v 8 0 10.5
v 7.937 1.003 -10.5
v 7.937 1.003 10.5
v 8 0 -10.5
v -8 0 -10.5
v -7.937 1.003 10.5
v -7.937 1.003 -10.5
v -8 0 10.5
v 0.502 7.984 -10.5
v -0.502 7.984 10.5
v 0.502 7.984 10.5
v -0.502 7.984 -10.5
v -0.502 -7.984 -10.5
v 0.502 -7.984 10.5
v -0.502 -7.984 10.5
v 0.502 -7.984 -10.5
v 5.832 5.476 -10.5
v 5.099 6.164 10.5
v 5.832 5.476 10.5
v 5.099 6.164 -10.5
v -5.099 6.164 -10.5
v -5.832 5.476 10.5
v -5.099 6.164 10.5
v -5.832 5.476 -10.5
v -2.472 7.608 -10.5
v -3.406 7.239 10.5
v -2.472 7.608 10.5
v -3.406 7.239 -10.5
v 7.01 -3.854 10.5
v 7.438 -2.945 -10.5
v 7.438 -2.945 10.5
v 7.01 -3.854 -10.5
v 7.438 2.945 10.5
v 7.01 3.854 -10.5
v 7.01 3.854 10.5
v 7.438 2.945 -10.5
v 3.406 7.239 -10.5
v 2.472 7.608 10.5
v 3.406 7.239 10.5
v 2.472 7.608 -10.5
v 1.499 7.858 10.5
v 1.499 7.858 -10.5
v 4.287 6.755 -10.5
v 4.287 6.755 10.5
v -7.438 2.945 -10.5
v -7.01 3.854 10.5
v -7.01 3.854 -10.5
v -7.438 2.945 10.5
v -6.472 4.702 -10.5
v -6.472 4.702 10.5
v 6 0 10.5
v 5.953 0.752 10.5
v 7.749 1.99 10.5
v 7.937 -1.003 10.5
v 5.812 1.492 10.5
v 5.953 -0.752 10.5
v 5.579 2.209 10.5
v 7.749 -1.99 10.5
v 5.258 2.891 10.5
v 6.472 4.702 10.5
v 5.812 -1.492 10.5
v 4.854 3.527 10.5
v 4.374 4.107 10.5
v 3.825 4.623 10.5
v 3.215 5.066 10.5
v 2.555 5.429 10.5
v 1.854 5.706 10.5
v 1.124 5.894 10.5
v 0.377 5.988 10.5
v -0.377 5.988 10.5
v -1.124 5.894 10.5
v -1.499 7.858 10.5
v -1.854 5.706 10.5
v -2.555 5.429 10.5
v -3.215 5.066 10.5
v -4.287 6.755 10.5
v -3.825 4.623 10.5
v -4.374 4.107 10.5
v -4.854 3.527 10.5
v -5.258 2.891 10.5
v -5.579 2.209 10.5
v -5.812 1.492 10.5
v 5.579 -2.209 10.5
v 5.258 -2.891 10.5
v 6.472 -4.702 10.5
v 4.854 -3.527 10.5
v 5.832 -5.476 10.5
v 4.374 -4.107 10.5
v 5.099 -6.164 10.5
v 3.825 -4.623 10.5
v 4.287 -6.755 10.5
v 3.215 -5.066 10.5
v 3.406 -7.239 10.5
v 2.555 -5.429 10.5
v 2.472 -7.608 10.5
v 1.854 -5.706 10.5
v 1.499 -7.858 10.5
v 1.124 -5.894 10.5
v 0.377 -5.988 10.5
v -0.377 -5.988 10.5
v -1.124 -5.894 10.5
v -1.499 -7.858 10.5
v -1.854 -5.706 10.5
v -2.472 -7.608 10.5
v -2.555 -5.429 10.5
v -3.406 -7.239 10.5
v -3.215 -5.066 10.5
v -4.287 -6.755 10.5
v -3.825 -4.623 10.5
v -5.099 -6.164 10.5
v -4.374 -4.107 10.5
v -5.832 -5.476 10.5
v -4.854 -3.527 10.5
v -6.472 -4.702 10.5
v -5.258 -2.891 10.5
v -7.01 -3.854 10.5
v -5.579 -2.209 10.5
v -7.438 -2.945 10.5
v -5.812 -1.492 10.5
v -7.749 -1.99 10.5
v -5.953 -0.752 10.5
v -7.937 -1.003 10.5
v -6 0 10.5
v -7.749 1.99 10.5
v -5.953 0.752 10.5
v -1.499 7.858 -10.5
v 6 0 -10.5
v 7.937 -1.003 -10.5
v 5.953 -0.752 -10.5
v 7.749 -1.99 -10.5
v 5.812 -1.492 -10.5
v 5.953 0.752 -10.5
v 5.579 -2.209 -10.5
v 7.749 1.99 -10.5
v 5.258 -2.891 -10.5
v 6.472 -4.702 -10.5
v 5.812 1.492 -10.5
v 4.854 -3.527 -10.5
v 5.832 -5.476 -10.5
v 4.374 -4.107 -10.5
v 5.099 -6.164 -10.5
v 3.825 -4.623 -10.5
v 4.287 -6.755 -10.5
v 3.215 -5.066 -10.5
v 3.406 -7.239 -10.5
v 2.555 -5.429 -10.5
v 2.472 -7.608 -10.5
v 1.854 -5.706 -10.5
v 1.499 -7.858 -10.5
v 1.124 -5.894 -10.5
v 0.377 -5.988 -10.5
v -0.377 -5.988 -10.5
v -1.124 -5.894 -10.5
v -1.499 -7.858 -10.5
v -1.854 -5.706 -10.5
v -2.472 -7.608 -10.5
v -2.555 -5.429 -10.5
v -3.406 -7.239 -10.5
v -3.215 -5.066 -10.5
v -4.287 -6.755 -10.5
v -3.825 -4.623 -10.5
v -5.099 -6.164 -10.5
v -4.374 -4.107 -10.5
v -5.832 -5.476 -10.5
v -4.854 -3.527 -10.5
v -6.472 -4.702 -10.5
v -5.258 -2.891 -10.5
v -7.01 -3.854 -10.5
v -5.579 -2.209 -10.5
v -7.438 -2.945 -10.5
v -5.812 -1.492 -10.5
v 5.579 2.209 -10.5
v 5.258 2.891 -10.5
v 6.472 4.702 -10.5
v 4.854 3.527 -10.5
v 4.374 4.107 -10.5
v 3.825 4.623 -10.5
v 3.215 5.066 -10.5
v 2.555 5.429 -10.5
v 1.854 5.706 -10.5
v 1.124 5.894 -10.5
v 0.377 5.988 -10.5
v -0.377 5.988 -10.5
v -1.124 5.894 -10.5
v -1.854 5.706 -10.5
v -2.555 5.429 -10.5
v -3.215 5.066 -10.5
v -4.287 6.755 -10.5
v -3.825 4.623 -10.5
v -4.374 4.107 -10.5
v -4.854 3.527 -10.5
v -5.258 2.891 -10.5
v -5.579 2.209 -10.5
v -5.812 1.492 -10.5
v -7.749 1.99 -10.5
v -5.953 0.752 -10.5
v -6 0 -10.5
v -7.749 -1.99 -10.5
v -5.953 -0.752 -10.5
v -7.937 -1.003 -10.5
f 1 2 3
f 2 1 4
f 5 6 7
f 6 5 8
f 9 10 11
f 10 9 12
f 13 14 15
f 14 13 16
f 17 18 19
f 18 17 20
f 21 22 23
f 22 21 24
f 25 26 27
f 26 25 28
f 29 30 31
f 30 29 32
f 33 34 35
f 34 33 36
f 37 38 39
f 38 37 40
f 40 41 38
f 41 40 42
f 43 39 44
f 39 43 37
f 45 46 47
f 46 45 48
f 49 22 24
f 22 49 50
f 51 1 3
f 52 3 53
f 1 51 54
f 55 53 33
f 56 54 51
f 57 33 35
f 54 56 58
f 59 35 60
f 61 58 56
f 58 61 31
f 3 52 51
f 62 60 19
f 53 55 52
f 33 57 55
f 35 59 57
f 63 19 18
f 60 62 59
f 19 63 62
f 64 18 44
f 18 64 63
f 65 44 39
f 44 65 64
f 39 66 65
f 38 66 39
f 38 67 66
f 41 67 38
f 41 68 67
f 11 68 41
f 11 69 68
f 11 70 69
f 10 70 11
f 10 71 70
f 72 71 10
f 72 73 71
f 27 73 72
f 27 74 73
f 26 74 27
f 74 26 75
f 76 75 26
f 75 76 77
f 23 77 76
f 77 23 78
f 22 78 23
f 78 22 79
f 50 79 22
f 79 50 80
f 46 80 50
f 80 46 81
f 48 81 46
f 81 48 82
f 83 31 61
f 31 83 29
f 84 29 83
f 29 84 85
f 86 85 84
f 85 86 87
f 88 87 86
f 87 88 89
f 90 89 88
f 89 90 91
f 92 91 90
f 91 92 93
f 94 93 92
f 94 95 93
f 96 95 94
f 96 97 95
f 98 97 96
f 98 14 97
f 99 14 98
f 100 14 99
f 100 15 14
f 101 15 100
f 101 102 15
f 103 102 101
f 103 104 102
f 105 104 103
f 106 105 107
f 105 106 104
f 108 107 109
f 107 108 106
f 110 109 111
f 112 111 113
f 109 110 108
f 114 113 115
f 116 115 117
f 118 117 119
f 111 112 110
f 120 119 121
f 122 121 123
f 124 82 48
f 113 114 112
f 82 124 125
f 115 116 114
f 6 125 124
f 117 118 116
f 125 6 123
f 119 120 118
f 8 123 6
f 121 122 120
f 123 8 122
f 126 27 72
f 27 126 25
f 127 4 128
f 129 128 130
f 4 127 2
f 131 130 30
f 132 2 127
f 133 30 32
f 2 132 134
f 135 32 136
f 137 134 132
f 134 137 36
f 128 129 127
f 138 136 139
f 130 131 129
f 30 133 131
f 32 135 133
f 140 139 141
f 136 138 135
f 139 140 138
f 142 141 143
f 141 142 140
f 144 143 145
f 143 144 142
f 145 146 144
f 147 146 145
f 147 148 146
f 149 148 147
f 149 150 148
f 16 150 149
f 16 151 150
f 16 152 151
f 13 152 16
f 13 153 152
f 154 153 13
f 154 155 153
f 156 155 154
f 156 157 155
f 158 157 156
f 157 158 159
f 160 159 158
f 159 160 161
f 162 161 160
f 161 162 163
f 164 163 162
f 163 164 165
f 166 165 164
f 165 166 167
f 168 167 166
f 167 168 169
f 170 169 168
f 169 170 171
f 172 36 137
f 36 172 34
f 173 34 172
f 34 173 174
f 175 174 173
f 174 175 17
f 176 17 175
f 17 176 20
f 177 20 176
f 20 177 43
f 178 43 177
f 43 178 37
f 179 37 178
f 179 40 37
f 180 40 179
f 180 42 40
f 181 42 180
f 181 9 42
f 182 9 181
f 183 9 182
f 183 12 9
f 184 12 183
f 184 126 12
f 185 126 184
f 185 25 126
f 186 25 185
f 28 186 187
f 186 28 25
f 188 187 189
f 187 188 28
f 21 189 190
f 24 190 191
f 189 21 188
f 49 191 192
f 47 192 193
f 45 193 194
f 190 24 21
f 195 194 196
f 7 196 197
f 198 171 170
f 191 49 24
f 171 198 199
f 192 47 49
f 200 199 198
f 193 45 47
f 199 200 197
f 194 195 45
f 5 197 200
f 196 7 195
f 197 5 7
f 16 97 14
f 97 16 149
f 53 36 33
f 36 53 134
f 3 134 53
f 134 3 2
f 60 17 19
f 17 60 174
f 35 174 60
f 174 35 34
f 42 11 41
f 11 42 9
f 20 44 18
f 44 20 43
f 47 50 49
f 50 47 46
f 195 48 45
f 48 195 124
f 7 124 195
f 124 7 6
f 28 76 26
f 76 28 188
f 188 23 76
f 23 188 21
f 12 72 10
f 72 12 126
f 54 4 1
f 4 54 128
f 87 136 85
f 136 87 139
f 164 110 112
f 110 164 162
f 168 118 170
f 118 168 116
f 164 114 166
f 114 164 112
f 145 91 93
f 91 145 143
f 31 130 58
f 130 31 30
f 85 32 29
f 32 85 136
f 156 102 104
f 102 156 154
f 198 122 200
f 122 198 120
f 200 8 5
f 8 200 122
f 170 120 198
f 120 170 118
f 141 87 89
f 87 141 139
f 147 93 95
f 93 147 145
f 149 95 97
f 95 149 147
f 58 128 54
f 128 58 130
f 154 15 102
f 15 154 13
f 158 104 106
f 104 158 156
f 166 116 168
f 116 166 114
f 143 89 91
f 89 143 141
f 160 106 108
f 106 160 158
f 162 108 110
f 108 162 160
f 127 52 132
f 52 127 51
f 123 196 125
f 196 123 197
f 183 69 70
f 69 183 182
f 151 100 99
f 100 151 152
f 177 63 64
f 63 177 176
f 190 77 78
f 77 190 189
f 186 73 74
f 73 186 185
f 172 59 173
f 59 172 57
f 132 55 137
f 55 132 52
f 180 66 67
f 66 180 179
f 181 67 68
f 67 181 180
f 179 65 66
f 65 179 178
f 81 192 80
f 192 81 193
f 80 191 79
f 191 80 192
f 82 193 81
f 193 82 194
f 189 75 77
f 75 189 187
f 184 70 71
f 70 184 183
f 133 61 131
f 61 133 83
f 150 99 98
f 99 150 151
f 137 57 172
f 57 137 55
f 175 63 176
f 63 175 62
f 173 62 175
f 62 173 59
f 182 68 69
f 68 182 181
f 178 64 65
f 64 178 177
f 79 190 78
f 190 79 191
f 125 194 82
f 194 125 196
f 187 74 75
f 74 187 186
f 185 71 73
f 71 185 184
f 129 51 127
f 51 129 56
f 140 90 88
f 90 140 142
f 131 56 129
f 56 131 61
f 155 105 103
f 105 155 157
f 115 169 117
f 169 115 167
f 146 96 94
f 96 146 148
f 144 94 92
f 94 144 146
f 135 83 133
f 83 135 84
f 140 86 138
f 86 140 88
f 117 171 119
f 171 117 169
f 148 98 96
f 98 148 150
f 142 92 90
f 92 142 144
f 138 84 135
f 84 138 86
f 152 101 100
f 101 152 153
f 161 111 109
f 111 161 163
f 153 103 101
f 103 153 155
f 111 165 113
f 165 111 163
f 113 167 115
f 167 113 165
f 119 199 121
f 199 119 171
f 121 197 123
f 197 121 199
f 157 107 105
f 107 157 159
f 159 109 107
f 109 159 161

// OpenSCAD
$fn = 50;


difference() {
	union() {
		translate(v = [0, 0, -10.5000000000]) {
			cylinder(h = 21, r = 8.0000000000);
		}
	}
	union() {
		translate(v = [0, 0, -100.0000000000]) {
			cylinder(h = 200, r = 6);
		}
	}
}
